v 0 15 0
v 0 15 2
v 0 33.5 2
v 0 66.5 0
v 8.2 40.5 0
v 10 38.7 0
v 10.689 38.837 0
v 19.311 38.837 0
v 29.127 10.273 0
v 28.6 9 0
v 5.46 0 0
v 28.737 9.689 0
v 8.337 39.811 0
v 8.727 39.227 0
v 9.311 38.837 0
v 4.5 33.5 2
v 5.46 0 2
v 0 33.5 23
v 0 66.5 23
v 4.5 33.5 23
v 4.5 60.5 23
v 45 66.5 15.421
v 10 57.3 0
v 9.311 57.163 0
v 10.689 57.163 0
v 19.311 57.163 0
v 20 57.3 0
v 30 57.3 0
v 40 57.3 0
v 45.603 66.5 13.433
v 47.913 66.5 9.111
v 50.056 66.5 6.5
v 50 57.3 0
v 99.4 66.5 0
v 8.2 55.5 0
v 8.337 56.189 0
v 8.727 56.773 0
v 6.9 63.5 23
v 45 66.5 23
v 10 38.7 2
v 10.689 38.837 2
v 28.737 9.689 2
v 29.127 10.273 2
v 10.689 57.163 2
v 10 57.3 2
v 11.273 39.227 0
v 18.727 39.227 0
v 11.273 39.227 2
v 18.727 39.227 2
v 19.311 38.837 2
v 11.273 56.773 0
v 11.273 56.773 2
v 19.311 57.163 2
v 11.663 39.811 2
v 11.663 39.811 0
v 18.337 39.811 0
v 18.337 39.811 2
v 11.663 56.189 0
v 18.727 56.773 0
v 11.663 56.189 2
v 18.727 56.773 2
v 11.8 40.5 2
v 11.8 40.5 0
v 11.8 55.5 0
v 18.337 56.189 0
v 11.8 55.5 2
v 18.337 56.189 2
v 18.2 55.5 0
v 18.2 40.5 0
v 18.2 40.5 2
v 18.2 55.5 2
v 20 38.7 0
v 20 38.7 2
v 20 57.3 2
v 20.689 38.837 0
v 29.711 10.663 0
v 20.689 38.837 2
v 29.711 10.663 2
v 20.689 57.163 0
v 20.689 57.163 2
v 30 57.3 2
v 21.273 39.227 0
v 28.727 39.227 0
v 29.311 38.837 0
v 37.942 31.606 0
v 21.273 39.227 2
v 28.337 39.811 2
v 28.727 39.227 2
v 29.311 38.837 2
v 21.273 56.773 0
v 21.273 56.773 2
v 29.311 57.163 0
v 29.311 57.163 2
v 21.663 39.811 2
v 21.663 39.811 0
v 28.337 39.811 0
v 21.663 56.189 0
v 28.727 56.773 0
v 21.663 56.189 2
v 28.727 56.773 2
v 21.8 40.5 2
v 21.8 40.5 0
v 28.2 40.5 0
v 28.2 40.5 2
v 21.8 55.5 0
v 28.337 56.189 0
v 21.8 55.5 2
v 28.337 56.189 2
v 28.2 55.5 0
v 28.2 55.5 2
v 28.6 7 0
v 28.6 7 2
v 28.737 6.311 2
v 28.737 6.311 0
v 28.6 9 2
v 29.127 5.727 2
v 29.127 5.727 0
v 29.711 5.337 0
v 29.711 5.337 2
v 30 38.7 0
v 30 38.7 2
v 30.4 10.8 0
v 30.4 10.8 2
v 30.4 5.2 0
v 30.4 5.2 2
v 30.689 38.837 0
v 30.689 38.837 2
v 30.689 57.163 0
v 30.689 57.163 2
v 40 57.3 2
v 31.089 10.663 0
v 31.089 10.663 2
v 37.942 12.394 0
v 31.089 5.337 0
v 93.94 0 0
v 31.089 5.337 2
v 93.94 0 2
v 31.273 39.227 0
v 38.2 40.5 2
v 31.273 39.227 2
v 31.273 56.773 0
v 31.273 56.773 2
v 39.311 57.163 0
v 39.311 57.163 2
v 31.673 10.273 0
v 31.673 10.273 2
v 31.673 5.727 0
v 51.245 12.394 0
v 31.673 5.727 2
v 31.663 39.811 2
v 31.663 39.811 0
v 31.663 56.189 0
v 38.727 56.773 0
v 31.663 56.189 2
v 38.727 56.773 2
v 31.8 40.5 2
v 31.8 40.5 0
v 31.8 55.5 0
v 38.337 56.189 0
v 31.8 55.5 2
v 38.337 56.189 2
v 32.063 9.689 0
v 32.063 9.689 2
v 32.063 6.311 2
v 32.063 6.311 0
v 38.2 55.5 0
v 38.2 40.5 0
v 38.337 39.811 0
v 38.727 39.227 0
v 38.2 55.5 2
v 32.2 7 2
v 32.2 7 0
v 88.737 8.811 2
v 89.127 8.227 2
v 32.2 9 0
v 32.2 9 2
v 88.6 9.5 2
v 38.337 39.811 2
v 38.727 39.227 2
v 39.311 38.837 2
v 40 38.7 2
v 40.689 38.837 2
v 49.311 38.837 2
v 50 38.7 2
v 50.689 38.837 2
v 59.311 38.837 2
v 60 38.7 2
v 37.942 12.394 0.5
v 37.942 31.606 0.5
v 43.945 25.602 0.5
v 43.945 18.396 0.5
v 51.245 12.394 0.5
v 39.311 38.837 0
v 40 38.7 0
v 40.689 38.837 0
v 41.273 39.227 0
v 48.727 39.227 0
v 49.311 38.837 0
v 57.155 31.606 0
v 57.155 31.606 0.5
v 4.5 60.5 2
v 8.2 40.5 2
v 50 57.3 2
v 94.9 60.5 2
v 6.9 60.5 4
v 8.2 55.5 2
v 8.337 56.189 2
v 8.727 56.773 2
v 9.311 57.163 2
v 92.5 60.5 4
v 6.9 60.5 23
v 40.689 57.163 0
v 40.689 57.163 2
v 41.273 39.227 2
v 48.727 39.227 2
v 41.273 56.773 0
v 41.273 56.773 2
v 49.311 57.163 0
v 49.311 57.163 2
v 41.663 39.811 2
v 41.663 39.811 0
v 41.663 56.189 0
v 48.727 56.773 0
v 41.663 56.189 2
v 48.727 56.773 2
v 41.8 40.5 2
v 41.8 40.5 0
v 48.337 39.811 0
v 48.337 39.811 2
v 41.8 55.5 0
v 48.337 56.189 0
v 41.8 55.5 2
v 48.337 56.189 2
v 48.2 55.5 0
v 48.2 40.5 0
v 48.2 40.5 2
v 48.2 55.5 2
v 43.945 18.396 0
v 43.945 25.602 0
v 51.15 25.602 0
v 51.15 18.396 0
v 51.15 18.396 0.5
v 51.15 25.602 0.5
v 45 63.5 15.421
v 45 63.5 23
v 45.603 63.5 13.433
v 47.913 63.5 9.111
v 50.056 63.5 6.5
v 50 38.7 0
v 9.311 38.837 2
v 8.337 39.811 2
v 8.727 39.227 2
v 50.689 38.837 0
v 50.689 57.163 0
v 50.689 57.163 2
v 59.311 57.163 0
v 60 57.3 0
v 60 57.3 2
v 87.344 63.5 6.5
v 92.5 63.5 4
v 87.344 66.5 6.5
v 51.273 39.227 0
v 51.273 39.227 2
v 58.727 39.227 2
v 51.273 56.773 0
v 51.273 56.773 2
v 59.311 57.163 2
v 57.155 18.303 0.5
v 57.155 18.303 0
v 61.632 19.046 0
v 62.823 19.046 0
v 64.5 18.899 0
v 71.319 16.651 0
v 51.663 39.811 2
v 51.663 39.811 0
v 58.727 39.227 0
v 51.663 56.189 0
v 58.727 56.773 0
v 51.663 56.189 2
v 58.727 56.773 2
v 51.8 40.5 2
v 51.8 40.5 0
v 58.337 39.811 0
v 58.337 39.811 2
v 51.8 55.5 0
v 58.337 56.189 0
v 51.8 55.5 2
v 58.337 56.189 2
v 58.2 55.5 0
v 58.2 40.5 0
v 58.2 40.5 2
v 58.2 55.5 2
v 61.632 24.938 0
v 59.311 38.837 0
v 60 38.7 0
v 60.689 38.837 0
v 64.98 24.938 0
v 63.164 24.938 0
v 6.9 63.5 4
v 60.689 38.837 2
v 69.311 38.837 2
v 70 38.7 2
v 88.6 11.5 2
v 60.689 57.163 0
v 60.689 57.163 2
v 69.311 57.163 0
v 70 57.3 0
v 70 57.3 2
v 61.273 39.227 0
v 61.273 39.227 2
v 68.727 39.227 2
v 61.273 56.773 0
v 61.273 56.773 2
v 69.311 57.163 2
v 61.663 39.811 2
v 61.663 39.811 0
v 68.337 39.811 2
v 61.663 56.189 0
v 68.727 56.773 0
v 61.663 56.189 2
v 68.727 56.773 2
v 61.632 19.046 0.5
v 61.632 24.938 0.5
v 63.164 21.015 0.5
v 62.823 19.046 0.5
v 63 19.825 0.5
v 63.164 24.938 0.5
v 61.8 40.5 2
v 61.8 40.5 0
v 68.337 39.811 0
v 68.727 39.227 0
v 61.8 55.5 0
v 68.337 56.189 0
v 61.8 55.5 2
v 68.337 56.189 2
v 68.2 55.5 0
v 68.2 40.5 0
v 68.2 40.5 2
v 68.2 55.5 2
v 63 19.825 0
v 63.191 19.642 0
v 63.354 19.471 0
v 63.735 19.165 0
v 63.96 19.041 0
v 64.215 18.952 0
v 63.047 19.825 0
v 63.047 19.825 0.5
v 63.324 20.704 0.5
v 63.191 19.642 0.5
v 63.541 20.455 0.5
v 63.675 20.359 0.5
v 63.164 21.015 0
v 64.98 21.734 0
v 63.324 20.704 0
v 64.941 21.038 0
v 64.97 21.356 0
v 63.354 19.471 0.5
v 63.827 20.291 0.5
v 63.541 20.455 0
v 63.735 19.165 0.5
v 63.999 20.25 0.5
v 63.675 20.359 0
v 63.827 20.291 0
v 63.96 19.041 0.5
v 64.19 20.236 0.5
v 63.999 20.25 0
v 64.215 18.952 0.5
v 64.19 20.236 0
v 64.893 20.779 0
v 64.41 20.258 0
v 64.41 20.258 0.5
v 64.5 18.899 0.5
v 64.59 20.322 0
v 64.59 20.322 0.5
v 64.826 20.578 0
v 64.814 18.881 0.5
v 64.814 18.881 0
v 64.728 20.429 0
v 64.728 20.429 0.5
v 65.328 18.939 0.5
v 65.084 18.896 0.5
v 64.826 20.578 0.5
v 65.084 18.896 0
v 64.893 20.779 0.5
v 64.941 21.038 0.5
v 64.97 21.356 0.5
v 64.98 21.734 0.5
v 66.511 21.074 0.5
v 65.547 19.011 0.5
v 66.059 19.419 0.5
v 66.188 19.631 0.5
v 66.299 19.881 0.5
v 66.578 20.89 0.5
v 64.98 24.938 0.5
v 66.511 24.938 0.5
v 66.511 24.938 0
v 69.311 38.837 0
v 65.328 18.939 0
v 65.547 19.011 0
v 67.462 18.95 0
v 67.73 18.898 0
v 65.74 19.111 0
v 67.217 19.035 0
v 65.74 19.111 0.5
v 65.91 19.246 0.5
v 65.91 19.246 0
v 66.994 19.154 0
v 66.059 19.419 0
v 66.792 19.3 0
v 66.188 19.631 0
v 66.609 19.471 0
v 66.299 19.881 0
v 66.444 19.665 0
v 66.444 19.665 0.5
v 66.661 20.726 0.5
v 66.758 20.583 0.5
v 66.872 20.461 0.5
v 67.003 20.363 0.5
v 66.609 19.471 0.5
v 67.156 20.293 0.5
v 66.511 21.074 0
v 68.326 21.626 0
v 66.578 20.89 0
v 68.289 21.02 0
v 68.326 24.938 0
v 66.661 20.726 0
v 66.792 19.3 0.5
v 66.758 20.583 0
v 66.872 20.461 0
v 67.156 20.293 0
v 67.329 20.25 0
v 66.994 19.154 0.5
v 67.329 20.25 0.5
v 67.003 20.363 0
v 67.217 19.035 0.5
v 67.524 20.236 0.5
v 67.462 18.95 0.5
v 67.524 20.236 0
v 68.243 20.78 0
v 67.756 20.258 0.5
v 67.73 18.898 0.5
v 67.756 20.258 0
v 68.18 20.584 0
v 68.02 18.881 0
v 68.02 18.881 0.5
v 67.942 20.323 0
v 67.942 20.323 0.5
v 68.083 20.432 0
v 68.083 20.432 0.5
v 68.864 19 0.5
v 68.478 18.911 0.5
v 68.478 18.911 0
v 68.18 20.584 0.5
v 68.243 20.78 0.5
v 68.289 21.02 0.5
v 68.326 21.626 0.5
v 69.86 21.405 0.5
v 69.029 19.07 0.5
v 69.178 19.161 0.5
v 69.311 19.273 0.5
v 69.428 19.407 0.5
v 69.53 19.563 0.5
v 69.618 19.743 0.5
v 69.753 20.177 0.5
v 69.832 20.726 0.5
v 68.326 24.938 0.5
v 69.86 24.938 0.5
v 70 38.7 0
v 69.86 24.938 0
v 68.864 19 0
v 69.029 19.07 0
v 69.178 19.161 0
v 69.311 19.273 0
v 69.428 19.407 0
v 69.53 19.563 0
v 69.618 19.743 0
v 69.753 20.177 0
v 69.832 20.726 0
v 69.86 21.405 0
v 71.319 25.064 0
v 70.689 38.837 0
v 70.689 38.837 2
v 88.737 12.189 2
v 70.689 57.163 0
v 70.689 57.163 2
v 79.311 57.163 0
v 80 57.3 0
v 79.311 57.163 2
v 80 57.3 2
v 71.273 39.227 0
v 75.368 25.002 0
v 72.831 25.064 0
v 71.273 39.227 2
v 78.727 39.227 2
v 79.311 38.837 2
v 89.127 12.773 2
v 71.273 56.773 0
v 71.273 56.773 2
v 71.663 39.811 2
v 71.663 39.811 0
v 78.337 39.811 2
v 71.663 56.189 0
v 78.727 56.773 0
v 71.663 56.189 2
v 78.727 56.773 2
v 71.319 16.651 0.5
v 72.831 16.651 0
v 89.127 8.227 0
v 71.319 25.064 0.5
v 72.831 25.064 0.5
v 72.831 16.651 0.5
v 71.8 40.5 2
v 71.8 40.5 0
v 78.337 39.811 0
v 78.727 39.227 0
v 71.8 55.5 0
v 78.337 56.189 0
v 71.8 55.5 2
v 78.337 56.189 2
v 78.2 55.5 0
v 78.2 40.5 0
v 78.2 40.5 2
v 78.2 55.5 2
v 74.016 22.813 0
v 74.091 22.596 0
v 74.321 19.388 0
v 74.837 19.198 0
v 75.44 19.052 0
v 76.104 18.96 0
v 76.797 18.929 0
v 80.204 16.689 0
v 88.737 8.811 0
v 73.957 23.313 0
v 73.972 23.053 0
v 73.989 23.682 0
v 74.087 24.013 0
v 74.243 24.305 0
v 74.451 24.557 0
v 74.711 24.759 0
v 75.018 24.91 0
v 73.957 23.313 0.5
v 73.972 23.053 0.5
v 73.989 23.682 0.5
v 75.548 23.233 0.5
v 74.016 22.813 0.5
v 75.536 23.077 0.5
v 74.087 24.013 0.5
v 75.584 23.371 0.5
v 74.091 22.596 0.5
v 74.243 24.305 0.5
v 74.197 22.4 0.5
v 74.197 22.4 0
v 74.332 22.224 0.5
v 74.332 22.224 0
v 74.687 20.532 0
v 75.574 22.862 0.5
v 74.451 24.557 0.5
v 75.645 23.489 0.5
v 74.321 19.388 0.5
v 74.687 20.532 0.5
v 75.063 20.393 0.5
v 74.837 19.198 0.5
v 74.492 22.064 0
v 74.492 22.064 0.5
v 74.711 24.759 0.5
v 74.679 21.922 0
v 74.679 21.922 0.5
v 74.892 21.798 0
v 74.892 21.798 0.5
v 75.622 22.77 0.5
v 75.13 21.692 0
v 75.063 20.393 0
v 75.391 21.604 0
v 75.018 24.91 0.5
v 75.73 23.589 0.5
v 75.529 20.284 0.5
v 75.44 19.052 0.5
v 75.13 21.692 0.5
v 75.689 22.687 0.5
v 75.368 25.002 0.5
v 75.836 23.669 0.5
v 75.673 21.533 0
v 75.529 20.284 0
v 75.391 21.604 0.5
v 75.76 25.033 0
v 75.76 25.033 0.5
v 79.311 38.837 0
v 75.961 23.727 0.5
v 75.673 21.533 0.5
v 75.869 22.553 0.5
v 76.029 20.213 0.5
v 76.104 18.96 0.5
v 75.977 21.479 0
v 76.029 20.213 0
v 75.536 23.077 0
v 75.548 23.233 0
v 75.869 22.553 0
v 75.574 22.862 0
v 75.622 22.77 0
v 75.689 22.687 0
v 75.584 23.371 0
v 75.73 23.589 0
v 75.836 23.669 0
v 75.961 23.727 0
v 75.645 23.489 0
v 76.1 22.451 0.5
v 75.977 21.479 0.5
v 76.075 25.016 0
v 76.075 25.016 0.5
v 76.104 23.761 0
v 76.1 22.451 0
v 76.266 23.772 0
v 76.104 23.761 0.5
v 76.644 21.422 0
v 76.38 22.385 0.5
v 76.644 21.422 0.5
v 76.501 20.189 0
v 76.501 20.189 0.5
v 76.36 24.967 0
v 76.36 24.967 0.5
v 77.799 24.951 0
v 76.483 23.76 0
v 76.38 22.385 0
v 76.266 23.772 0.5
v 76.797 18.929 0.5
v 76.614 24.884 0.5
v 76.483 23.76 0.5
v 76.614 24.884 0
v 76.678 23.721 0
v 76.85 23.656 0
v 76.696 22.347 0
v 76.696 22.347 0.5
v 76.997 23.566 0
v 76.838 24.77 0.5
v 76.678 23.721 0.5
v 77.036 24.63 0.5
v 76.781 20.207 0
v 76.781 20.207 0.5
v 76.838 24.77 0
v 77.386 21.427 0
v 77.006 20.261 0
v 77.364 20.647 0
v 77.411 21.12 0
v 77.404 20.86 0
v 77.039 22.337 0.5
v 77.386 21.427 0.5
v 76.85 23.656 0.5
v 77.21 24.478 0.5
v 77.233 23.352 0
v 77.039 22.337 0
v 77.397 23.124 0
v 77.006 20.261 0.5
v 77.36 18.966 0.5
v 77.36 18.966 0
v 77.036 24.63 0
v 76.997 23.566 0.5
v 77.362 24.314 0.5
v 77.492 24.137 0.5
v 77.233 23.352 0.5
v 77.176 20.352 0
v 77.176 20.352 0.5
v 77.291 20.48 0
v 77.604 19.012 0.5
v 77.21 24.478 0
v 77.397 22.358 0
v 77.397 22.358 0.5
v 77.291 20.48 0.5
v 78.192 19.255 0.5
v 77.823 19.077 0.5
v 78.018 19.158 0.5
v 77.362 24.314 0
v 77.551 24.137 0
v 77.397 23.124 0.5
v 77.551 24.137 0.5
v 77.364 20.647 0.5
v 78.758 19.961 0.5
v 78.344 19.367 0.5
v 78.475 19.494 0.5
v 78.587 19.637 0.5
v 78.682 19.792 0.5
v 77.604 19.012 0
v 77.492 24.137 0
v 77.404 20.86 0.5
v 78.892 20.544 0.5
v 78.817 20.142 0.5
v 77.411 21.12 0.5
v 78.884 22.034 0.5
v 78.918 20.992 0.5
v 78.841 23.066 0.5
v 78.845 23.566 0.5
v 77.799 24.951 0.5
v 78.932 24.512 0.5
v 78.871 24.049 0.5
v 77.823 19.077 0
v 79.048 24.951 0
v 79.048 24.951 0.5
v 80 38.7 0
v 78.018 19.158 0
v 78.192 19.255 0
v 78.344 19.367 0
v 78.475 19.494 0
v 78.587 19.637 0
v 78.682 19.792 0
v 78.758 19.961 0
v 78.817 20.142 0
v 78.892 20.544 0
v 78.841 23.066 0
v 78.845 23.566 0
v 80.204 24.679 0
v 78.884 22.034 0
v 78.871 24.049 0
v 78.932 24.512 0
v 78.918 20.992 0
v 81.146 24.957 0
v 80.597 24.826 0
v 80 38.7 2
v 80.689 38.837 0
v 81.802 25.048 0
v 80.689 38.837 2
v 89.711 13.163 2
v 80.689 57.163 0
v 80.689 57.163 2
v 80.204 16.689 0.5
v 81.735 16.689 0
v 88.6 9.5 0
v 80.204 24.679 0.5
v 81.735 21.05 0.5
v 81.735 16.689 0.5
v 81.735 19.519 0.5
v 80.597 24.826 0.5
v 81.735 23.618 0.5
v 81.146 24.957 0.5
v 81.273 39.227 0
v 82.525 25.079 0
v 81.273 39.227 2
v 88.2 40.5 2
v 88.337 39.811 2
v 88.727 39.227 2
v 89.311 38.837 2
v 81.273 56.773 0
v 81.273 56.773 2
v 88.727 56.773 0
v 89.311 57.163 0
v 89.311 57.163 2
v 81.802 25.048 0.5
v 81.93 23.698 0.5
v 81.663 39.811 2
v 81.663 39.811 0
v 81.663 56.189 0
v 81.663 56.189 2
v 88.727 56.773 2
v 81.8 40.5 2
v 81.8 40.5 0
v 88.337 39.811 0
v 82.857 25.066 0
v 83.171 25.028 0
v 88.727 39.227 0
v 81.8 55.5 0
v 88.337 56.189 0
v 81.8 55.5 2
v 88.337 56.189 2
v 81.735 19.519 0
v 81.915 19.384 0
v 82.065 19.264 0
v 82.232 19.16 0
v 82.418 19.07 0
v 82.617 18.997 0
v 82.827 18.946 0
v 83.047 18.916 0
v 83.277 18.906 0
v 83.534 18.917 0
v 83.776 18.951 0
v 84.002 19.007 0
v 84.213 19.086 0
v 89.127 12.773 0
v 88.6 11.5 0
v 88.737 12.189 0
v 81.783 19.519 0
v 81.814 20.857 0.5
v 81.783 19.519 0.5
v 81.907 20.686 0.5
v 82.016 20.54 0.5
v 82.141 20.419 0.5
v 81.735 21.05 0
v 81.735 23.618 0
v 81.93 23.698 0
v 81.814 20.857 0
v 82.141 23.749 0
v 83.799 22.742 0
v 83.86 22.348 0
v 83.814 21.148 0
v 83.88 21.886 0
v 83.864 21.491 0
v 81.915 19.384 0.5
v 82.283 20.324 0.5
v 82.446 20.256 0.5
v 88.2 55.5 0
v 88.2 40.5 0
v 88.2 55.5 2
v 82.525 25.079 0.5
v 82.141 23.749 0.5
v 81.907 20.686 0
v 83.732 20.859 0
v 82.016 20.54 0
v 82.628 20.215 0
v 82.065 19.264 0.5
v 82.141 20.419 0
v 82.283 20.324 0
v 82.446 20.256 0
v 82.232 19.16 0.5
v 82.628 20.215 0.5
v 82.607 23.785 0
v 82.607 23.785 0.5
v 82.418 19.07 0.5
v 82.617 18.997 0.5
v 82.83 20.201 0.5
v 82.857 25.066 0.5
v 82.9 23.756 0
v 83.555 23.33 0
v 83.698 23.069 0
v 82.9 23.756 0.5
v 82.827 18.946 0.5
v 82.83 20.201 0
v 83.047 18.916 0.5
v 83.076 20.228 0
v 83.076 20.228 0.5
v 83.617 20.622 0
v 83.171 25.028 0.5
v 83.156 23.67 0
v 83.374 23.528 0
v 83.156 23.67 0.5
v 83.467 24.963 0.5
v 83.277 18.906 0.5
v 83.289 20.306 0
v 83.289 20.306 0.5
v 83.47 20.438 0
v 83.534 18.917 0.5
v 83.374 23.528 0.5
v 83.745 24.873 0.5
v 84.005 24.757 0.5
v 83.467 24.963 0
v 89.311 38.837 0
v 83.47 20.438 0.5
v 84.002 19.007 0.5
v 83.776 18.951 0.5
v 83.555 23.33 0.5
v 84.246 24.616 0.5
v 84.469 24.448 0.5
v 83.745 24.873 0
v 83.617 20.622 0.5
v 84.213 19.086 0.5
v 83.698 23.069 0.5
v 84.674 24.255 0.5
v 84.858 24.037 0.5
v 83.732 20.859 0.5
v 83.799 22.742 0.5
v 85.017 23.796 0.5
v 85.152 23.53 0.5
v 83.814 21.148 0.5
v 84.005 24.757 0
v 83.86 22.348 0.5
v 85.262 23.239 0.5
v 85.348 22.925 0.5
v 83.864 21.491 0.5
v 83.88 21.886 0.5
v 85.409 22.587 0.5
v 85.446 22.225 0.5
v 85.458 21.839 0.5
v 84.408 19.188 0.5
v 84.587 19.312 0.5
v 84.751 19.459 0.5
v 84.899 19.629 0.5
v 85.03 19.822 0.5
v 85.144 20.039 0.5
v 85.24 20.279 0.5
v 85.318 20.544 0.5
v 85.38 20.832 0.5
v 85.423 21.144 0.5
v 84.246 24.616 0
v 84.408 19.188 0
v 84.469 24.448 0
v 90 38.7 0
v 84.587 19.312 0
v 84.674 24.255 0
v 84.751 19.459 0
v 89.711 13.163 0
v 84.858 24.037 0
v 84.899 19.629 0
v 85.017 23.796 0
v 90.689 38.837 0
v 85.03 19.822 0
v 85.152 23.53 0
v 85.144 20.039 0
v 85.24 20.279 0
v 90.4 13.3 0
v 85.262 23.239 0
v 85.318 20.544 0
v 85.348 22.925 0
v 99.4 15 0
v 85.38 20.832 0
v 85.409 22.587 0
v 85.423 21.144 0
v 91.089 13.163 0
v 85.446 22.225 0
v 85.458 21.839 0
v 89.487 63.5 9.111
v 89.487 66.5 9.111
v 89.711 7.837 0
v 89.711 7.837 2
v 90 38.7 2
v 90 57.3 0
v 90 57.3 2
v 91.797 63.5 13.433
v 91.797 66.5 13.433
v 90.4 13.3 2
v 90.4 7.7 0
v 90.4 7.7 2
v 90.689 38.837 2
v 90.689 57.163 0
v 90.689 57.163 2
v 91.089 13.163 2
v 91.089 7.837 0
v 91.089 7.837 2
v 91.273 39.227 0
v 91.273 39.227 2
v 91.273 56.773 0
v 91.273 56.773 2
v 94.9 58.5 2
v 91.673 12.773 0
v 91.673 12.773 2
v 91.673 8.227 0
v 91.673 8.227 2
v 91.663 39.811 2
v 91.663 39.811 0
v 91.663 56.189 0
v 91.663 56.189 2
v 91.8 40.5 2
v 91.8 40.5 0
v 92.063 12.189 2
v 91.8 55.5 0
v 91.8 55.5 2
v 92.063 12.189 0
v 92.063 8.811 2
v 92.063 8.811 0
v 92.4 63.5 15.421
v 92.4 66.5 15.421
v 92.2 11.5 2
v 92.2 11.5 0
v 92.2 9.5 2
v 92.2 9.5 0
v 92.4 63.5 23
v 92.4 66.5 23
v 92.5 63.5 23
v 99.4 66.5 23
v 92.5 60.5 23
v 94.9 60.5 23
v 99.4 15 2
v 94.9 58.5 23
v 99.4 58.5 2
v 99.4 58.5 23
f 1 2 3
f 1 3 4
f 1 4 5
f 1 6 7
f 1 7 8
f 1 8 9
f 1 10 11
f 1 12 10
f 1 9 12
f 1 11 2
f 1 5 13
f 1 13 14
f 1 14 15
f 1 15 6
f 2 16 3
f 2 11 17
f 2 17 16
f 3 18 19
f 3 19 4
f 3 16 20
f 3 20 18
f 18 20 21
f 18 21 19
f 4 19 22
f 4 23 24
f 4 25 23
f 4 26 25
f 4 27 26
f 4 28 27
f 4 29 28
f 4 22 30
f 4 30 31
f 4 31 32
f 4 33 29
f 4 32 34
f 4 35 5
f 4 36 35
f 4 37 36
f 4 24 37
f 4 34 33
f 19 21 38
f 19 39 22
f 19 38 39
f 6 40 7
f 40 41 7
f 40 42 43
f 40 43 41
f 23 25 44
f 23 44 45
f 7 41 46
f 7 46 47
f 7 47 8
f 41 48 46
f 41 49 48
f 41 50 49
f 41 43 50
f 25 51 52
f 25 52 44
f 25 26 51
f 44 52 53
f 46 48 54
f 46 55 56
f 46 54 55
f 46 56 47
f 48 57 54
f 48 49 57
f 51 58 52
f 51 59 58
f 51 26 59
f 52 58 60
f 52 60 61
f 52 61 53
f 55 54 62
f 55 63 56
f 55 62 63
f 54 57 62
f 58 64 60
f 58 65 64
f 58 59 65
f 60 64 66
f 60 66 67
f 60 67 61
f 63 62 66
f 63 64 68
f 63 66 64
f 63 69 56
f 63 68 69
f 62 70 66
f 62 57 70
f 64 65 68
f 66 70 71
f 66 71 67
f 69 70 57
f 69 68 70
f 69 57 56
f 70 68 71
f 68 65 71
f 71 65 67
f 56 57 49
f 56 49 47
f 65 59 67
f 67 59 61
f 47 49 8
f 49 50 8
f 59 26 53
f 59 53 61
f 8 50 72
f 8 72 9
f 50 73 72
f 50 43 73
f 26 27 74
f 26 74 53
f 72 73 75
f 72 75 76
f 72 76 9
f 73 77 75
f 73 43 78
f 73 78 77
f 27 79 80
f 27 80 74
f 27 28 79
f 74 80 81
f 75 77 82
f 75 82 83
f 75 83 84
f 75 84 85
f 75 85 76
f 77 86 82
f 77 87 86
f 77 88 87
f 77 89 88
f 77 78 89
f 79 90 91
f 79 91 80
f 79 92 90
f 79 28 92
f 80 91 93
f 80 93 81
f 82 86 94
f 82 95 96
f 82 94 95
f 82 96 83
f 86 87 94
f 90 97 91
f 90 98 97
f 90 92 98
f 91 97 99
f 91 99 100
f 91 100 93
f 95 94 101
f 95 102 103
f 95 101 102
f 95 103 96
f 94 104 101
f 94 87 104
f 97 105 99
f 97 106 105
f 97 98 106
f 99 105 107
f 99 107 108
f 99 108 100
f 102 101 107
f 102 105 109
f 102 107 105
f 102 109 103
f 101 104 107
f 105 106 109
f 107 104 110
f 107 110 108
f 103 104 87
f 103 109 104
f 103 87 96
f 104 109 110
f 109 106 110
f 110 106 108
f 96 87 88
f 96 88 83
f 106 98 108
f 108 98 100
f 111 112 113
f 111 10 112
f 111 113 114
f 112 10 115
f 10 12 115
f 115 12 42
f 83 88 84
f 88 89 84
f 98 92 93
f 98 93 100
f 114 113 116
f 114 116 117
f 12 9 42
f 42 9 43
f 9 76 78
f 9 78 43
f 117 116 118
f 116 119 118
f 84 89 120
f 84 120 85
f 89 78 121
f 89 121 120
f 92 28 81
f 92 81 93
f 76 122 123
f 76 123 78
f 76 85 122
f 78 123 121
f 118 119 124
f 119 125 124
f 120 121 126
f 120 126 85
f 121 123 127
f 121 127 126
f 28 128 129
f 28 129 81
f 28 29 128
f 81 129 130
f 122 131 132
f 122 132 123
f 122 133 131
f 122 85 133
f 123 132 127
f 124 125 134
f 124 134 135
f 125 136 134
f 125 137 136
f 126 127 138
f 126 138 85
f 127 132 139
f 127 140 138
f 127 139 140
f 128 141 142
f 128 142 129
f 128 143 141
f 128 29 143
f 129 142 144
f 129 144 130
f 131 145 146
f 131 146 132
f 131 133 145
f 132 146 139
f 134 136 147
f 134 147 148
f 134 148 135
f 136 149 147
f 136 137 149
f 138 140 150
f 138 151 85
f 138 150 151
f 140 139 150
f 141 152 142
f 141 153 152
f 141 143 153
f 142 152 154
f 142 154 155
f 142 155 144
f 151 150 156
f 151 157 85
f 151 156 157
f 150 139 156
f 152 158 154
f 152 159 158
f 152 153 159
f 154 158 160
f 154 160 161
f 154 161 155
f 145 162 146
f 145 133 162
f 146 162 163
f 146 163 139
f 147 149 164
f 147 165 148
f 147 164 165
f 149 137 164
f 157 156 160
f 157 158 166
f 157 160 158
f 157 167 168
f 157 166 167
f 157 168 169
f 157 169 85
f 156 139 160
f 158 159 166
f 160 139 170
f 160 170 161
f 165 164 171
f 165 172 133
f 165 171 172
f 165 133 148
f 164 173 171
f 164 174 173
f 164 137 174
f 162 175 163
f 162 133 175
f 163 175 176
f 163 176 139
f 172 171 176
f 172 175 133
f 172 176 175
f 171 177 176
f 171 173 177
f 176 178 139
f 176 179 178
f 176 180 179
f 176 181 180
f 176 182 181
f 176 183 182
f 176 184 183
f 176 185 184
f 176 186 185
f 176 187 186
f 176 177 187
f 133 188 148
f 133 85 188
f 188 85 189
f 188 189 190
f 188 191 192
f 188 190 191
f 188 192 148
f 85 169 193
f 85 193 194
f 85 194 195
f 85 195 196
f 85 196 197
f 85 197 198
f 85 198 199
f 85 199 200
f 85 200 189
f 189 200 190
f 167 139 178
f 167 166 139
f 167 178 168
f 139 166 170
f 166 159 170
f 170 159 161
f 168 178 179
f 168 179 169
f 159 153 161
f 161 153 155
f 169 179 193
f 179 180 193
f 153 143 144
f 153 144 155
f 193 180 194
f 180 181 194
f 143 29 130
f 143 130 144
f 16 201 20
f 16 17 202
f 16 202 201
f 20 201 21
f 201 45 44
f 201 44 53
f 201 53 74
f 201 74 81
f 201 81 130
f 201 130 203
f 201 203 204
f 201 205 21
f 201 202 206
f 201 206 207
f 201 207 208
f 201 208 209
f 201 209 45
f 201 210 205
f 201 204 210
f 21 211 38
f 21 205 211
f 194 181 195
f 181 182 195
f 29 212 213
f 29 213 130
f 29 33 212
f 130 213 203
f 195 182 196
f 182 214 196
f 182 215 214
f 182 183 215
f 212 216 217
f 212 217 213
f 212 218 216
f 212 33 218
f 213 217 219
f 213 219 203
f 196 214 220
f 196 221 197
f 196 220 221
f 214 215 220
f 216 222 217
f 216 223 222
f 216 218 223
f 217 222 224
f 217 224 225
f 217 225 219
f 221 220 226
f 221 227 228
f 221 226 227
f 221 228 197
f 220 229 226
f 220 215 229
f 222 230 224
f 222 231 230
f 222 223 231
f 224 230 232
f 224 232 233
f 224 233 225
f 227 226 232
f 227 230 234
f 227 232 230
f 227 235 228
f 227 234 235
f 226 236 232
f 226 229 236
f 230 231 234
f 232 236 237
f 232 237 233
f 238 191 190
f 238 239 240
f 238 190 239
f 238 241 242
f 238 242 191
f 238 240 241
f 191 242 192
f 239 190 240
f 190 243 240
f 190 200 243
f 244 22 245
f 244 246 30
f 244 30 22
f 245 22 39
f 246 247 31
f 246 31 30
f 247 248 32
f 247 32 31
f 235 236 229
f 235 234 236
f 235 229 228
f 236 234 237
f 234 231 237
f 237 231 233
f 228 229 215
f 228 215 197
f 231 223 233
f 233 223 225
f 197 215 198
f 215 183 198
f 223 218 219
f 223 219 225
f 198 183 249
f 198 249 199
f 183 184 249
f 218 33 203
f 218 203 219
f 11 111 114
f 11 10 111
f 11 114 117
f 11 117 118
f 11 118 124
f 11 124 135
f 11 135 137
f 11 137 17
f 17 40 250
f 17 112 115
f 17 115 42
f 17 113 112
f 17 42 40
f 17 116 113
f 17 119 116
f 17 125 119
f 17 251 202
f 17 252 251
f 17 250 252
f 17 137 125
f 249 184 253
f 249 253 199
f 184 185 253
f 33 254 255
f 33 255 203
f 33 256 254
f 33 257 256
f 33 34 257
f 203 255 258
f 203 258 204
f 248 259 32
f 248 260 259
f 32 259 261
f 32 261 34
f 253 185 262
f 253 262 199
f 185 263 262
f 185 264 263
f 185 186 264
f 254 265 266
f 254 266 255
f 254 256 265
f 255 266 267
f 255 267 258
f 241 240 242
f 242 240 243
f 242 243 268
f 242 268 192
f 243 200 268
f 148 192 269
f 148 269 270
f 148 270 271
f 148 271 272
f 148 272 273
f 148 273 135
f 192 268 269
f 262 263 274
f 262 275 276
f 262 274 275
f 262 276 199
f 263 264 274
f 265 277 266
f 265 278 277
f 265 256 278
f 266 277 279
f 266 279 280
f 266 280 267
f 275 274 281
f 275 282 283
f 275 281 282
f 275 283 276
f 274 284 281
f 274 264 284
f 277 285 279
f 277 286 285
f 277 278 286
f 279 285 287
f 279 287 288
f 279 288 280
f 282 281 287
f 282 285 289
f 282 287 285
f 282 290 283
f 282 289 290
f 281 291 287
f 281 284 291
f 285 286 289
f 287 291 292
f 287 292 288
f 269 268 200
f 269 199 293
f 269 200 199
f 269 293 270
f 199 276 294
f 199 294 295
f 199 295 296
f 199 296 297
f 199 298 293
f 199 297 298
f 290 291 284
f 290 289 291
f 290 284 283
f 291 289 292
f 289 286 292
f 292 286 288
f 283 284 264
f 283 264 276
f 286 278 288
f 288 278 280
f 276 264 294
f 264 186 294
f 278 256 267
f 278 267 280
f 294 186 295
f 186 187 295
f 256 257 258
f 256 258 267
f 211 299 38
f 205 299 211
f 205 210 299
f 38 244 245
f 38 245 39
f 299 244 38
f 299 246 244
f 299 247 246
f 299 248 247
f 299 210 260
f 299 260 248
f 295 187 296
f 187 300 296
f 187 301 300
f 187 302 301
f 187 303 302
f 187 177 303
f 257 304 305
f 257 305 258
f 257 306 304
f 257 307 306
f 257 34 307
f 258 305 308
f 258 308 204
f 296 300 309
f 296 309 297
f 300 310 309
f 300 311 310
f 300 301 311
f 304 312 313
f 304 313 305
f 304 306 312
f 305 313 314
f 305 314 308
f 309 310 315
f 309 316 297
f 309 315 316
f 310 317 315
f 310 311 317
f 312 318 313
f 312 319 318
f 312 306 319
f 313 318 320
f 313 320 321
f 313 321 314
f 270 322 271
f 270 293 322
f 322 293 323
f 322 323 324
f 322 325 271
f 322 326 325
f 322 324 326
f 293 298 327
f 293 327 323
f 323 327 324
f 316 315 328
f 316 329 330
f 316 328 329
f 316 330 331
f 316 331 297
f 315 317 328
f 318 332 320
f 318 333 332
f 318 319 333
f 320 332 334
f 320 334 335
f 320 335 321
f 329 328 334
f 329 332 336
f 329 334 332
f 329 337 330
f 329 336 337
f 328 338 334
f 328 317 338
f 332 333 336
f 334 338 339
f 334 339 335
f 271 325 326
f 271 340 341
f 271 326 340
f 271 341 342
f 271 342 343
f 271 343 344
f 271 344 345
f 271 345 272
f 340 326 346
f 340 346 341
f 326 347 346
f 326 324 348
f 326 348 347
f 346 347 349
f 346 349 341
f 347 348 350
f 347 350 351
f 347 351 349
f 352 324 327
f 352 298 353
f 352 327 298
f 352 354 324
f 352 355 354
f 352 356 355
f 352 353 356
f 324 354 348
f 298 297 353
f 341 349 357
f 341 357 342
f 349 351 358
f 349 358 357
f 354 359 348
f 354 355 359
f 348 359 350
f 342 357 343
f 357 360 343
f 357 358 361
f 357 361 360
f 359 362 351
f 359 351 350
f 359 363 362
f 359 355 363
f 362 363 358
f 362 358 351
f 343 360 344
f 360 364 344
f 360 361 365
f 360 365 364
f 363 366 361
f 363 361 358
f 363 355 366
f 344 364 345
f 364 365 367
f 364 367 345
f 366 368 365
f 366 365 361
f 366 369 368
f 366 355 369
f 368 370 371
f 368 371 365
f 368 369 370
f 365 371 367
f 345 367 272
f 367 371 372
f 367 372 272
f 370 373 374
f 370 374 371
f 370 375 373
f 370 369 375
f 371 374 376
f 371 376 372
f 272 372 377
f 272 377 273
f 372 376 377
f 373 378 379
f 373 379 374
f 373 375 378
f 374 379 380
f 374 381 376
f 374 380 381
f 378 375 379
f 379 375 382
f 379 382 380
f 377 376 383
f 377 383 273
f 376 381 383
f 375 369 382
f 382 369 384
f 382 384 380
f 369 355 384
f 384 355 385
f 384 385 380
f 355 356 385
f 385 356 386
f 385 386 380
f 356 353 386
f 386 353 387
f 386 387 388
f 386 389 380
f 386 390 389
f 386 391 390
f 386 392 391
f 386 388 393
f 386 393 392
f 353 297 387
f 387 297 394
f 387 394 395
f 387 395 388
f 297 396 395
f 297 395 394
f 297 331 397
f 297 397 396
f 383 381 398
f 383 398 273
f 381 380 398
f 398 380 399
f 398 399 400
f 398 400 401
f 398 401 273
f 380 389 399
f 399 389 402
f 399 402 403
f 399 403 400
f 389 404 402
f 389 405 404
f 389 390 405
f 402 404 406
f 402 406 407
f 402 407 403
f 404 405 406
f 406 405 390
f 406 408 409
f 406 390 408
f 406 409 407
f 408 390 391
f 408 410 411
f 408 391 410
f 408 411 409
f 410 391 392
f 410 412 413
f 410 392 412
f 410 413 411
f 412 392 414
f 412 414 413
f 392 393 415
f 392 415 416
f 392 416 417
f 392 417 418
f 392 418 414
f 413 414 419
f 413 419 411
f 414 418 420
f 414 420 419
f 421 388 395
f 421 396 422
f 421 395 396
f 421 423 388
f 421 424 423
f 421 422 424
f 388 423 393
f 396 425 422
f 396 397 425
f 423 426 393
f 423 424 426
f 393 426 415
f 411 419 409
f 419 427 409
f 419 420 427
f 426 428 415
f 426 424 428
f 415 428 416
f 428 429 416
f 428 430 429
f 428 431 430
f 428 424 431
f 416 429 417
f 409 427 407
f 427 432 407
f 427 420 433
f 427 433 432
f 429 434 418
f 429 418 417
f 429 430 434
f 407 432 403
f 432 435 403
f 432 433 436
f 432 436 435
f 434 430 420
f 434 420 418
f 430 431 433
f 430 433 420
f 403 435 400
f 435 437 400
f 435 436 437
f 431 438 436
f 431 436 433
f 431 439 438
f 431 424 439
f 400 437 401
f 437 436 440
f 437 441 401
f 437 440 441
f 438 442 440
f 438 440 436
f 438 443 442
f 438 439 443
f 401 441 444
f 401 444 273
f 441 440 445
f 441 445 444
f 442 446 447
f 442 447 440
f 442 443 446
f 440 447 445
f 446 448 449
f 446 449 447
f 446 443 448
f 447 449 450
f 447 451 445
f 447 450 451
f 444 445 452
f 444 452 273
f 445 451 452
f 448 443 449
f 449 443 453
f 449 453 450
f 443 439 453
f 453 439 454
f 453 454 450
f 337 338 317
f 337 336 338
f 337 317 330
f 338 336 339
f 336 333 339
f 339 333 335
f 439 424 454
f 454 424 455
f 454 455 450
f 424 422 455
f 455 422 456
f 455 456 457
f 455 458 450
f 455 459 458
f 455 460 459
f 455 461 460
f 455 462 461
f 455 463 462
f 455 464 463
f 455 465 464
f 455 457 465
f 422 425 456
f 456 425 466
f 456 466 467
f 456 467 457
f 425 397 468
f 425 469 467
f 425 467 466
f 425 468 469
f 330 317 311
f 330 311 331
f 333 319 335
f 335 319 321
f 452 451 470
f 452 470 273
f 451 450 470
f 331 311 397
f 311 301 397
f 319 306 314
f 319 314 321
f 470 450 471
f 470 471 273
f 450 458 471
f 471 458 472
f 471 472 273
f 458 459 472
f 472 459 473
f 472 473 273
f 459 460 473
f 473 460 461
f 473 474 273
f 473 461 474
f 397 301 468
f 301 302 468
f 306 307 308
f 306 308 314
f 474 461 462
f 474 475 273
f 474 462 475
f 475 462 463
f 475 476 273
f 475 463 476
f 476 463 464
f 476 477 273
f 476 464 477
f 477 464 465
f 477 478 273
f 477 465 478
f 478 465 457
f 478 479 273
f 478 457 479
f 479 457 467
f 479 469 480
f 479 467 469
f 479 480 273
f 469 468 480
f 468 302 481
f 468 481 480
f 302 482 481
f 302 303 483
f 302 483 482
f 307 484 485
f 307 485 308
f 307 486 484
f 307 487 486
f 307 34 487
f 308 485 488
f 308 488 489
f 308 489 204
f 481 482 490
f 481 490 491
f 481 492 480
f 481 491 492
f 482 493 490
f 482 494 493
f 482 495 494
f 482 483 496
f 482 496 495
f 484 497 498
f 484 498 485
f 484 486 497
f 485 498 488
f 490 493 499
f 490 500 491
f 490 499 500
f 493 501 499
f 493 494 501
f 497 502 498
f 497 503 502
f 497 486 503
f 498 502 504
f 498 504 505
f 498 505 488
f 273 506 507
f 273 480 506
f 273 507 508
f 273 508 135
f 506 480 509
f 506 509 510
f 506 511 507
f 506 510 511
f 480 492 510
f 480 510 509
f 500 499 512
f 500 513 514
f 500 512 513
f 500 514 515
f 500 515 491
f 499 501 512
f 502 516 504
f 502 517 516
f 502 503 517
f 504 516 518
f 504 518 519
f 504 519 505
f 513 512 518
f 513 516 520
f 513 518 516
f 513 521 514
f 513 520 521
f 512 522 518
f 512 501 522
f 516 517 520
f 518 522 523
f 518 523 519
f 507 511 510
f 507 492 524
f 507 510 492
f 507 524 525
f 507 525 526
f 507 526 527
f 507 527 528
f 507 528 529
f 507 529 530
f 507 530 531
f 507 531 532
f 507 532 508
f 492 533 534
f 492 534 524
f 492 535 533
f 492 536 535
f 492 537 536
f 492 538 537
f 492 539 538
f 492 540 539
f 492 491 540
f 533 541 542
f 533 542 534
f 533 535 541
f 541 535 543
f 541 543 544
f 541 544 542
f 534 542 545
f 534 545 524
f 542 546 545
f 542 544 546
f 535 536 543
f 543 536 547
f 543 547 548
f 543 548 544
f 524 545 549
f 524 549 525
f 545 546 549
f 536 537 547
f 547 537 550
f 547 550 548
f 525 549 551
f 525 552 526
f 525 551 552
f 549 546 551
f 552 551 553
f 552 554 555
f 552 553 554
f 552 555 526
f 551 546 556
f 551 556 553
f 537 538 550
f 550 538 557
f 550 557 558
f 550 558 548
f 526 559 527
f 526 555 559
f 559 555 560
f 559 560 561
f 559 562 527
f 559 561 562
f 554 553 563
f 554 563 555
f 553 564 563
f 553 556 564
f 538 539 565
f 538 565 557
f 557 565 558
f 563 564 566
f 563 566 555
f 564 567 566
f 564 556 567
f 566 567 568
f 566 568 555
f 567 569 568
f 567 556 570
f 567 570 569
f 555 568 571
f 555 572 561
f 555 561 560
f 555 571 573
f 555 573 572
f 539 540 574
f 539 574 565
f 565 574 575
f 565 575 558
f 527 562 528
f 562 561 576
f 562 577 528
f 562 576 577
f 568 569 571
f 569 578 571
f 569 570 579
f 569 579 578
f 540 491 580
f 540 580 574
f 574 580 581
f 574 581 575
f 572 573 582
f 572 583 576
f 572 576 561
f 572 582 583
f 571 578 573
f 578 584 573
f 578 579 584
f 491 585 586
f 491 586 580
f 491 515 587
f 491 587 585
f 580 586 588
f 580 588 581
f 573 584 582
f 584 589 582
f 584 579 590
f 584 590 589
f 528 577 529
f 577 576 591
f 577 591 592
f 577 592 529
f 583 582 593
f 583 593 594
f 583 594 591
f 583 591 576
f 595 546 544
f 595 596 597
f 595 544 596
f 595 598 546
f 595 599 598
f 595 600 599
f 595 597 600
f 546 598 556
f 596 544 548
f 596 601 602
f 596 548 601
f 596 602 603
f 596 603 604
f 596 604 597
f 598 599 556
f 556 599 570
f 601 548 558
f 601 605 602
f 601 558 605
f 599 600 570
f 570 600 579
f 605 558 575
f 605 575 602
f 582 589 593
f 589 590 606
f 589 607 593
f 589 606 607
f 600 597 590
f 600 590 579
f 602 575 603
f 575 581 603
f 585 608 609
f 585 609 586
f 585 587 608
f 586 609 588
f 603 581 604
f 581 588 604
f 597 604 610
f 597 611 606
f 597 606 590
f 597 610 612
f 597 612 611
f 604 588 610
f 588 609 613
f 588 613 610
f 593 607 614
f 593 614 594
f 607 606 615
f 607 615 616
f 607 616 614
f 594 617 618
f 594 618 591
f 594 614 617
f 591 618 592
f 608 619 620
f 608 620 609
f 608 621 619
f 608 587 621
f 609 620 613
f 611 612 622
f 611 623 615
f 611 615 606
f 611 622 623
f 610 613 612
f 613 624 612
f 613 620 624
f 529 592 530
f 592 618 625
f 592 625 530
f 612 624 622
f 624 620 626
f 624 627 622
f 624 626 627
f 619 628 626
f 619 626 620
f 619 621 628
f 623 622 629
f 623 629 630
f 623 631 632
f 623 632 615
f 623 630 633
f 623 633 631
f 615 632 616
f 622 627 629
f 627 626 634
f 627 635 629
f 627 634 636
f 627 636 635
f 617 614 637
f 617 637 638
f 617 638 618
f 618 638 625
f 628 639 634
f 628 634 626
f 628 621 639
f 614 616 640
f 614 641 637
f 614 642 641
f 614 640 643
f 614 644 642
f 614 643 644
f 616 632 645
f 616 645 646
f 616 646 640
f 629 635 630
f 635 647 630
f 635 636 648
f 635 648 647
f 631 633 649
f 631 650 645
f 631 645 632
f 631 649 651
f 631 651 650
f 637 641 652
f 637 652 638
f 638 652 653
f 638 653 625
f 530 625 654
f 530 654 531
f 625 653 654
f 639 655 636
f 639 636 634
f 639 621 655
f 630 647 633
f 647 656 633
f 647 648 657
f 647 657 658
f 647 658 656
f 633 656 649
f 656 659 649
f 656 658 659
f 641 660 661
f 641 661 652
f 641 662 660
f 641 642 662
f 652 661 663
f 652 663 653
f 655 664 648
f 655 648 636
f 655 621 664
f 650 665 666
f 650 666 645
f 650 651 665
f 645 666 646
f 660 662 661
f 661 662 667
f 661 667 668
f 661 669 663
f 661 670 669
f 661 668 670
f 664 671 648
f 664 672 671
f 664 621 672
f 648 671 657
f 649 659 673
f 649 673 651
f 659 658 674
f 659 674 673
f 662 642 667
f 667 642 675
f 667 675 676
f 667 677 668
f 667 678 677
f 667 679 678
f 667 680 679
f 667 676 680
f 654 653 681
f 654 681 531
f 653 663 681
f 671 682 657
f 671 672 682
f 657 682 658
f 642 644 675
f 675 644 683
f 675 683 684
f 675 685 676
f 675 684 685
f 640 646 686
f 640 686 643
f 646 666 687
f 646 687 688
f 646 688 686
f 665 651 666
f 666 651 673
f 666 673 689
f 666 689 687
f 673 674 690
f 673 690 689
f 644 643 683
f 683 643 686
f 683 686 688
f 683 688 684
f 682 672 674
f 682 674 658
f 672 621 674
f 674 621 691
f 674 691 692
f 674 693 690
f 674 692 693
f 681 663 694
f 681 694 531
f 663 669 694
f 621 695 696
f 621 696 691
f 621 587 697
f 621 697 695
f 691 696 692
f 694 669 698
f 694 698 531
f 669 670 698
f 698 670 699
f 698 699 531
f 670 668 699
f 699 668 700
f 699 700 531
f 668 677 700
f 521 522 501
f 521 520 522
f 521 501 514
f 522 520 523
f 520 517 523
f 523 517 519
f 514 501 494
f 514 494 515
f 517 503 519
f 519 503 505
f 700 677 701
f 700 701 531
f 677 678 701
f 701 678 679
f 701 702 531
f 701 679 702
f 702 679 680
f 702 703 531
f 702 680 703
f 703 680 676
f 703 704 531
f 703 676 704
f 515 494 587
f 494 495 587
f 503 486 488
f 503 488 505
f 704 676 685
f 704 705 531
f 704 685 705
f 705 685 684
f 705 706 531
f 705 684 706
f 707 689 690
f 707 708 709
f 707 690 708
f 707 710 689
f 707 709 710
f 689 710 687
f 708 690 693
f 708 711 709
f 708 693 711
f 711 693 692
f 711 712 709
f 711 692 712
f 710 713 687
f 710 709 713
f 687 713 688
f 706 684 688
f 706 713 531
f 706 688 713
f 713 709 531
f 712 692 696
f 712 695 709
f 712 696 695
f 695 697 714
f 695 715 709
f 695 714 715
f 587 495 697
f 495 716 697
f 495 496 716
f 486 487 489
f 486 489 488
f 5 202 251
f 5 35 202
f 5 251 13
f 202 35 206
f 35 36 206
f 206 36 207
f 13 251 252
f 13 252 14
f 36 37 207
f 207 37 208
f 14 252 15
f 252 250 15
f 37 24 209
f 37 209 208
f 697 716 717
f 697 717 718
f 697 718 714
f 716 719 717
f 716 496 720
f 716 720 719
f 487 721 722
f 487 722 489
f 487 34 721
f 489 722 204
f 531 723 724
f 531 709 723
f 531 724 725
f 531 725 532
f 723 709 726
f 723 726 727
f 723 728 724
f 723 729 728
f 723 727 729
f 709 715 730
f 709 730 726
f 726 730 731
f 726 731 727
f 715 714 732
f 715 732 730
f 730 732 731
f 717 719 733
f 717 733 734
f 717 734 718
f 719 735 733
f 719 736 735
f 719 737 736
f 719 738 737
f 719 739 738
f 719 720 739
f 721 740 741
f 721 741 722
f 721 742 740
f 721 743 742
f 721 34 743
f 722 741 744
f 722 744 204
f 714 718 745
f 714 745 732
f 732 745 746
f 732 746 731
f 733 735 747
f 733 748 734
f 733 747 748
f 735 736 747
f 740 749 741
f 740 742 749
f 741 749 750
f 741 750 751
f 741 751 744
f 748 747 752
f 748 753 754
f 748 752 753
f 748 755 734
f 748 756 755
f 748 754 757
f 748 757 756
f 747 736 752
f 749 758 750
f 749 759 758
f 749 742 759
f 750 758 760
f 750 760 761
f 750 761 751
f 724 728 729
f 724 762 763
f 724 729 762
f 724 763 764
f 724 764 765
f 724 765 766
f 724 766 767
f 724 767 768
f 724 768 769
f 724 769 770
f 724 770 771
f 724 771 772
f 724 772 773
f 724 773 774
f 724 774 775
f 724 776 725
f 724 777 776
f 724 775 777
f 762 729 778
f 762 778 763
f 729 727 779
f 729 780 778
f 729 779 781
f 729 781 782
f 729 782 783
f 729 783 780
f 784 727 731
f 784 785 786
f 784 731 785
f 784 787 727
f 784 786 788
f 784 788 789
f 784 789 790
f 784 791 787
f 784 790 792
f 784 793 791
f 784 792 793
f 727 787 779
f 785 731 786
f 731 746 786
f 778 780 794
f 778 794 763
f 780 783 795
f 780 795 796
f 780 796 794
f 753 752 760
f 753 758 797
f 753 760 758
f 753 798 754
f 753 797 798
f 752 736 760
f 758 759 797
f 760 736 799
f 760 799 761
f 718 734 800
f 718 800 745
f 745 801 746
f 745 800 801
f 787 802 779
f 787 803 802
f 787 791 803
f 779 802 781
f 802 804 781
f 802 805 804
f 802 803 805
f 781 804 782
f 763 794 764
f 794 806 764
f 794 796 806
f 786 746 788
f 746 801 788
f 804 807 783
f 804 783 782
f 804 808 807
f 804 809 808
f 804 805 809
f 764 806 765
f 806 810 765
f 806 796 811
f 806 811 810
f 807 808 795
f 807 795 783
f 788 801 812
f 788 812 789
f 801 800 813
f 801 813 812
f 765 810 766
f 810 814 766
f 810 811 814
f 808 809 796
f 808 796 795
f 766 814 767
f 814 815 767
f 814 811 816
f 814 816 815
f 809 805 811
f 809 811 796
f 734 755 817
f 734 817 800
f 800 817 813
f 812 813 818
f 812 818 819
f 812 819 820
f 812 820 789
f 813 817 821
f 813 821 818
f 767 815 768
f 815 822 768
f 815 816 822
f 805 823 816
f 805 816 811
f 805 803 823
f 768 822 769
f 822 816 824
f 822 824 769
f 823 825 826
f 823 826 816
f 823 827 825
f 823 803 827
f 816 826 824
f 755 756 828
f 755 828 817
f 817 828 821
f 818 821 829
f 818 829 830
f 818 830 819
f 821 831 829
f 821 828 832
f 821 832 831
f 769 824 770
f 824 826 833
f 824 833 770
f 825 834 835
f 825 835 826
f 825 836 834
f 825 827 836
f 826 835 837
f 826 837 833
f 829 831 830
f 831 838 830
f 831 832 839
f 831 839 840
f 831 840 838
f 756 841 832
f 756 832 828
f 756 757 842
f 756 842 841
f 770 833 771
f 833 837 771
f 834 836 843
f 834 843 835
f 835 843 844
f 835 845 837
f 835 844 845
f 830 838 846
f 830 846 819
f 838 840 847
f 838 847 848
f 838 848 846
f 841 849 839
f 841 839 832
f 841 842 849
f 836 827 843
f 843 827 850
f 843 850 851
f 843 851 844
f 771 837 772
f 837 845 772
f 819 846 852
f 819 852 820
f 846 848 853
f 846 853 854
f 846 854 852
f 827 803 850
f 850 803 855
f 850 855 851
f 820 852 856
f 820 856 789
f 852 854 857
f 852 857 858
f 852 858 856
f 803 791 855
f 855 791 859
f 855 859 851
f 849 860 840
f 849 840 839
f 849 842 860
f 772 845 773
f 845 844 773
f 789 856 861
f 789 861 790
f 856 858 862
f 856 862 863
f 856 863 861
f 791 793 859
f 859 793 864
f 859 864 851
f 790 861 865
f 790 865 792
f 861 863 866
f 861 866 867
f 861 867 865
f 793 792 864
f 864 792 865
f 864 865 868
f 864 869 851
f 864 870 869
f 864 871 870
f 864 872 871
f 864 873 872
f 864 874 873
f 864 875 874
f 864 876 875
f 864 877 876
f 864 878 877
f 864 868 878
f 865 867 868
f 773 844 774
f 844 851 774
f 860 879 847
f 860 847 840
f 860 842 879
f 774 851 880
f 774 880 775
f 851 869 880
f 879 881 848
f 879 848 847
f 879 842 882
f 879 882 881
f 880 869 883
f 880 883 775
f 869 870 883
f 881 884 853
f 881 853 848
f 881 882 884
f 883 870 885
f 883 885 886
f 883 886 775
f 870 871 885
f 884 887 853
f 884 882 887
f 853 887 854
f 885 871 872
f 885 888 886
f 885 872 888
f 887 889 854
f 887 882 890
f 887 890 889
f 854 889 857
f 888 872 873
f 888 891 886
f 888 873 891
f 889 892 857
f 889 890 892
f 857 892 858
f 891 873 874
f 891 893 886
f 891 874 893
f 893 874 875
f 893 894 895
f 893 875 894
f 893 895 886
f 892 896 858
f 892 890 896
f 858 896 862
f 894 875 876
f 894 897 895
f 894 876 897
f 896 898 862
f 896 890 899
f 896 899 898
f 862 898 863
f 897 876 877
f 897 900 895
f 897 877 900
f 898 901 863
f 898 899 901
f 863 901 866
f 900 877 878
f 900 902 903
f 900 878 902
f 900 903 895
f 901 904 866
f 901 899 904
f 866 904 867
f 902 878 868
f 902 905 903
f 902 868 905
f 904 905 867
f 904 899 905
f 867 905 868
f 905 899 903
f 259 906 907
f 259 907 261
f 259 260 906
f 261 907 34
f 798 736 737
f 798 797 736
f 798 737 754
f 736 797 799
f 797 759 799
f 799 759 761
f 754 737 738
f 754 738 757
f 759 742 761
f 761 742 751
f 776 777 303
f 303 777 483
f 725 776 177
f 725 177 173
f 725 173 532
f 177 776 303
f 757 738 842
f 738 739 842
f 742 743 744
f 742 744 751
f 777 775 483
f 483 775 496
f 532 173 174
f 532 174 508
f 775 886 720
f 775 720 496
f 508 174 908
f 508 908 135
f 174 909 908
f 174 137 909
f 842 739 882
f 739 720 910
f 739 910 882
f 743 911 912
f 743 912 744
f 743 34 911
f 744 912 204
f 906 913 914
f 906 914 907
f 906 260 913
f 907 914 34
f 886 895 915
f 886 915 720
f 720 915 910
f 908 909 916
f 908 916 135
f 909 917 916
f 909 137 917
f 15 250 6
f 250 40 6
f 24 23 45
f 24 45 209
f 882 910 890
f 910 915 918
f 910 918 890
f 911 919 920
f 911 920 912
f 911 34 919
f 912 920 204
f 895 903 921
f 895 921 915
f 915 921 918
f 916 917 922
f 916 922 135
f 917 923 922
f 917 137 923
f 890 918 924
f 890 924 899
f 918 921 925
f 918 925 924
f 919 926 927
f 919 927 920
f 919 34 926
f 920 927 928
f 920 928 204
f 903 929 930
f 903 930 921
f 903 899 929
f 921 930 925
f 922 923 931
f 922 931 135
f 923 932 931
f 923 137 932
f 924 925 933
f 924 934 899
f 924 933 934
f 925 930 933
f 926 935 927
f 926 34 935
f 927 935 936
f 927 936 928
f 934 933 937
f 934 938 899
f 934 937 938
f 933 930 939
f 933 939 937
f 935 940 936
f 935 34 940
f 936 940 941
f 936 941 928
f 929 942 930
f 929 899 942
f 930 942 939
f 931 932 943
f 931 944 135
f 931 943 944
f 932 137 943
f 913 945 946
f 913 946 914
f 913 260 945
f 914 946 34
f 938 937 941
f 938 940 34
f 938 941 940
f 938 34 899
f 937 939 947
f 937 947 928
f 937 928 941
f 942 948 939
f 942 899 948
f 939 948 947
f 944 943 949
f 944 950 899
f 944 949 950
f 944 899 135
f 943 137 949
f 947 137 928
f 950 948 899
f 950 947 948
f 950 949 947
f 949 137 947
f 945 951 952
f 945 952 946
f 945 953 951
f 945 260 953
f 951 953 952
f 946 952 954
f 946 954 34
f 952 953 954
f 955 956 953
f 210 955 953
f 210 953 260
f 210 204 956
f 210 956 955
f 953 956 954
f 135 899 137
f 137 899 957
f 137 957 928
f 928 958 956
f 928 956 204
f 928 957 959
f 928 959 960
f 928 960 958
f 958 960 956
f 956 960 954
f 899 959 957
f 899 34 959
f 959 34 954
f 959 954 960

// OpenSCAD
// file: ../include/configuration.scad
// Increase this if your slicer or printer make holes too tight.
extra_radius = 0.125;

// OD = outside diameter, corner to corner.
m3_nut_od = 6.1;
m3_nut_radius = m3_nut_od/2 + 0.2 + extra_radius;
m3_washer_radius = 3.5 + extra_radius;

// Major diameter of metric 3mm thread.
m3_major = 2.85;
m3_radius = m3_major/2 + extra_radius;
m3_wide_radius = m3_major/2 + extra_radius + 0.2;

// Major diameter of metric 5mm thread.
m5_major = 4.85;
m5_radius = m5_major/2 + extra_radius;
m5_wide_radius = m5_major/2 + extra_radius + 0.2;

// NEMA17 stepper motors.
motor_shaft_diameter = 5;
motor_shaft_radius = motor_shaft_diameter/2 + extra_radius;

// Frame brackets. M3x8mm screws work best with 3.6 mm brackets.
thickness = 3.6;

// OpenBeam or Misumi. Currently only 15x15 mm, but there is a plan
// to make models more parametric and allow 20x20 mm in the future.
extrusion = 15;

// Placement for the NEMA17 stepper motors.
motor_offset = 44;
motor_length = 47;

// Horizontal extrusion size
frame_base_size = 420;
// main file
// RebeliX
//
// Zadni kryt zdroje 12V / 240W zadni cast
// GNU GPL v3
// Martin Neruda <neruda@reprap4u.cz>
// http://www.reprap4u.cz

include <../include/configuration.scad>
use <../include/MLAB_logo.scad>

sirka = 98.5+0.9;
sirka_vnitrni = 90.7;
vyska = 23;
hloubka = 45;
tloustka_steny = 2;
plech_tloustka = 2 + 0.4;

hloubka_dilu = hloubka + 2*tloustka_steny + 1.5;

module power_base(){
	translate([0,0,0]) cube([sirka,hloubka_dilu+15,tloustka_steny]);

	translate([0,hloubka_dilu-tloustka_steny+15,0]) cube([sirka,tloustka_steny+1,vyska]);

	translate([0,3.5+30,0]) cube([2.5+tloustka_steny,hloubka_dilu-3.5-15,vyska]);
	translate([sirka-2.5-tloustka_steny,3.5+55,0]) cube([2.5+tloustka_steny,hloubka_dilu-3.5-40,vyska]);

	// Vystuzeni krabicky
	translate([1.9,hloubka_dilu+15,0]) rotate([0,0,0]) rotate([0,0,-90]) cube([5,5,vyska]);
	translate([sirka-1.9,hloubka_dilu+15,0]) rotate([0,0,180]) cube([5,5,vyska]);
	translate([1.9,hloubka_dilu-3-tloustka_steny+15,tloustka_steny]) cube([sirka-2*1.9,3,2]);
}

module power_cuts(){
    // Vyrez pro zdroj
	intersection(){
	  translate([45,hloubka_dilu+10,vyska/2 - 5]) cube([sirka-52,19,vyska]);
	  translate([45+(sirka-52)/2,hloubka_dilu+10,vyska]) rotate([90,0,0]) cylinder(r=25,h=19,$fn=32,center=true);
	}

	// Otvor pro srouby na pridelani krytu
	translate([sirka - 9, 10.5 - 1,6+tloustka_steny]) cylinder(r=1.8,h=200,$fn=16,center=true);
	translate([sirka - 9, 10.5 + 1,6+tloustka_steny]) cylinder(r=1.8,h=200,$fn=16,center=true);
	translate([sirka - 9, 10.5,0]) cube([2*1.8,2*1,10],center=true);

	translate([sirka - 69, 8 - 1,6+tloustka_steny]) cylinder(r=1.8,h=200,$fn=16,center=true);
	translate([sirka - 69, 8 + 1,6+tloustka_steny]) cylinder(r=1.8,h=200,$fn=16,center=true);
    translate([sirka - 69, 8,0]) cube([2*1.8,2*1,10],center=true);

	for(i=[10 : 10 : sirka]){
	  translate([i,hloubka_dilu + 5,0]) cylinder(r=1.8,h=10,$fn=16,center=true);
	  translate([i,hloubka_dilu - 10,0]) cylinder(r=1.8,h=10,$fn=16,center=true);
	  translate([i - 1.8,hloubka_dilu - 10,-5]) cube([1.8*2,15,10]);
	}

	translate([0,15,-0.1]) rotate([0,0,200]) cube([30,20,10]);
	translate([sirka,15,5]) rotate([180,0,-20]) cube([30,20,10]);


	// Text RebeliX
	translate([sirka/2+12, 22,-1]) rotate([0,0,-180]) mirror([1,0,0]) scale(v = [0.25, 0.25, 0.3])
     MLAB_logo_short();
}

module kryt_zdroje_zadni(){
	difference(){
	  power_base();
	  power_cuts();
	}
}

kryt_zdroje_zadni();
